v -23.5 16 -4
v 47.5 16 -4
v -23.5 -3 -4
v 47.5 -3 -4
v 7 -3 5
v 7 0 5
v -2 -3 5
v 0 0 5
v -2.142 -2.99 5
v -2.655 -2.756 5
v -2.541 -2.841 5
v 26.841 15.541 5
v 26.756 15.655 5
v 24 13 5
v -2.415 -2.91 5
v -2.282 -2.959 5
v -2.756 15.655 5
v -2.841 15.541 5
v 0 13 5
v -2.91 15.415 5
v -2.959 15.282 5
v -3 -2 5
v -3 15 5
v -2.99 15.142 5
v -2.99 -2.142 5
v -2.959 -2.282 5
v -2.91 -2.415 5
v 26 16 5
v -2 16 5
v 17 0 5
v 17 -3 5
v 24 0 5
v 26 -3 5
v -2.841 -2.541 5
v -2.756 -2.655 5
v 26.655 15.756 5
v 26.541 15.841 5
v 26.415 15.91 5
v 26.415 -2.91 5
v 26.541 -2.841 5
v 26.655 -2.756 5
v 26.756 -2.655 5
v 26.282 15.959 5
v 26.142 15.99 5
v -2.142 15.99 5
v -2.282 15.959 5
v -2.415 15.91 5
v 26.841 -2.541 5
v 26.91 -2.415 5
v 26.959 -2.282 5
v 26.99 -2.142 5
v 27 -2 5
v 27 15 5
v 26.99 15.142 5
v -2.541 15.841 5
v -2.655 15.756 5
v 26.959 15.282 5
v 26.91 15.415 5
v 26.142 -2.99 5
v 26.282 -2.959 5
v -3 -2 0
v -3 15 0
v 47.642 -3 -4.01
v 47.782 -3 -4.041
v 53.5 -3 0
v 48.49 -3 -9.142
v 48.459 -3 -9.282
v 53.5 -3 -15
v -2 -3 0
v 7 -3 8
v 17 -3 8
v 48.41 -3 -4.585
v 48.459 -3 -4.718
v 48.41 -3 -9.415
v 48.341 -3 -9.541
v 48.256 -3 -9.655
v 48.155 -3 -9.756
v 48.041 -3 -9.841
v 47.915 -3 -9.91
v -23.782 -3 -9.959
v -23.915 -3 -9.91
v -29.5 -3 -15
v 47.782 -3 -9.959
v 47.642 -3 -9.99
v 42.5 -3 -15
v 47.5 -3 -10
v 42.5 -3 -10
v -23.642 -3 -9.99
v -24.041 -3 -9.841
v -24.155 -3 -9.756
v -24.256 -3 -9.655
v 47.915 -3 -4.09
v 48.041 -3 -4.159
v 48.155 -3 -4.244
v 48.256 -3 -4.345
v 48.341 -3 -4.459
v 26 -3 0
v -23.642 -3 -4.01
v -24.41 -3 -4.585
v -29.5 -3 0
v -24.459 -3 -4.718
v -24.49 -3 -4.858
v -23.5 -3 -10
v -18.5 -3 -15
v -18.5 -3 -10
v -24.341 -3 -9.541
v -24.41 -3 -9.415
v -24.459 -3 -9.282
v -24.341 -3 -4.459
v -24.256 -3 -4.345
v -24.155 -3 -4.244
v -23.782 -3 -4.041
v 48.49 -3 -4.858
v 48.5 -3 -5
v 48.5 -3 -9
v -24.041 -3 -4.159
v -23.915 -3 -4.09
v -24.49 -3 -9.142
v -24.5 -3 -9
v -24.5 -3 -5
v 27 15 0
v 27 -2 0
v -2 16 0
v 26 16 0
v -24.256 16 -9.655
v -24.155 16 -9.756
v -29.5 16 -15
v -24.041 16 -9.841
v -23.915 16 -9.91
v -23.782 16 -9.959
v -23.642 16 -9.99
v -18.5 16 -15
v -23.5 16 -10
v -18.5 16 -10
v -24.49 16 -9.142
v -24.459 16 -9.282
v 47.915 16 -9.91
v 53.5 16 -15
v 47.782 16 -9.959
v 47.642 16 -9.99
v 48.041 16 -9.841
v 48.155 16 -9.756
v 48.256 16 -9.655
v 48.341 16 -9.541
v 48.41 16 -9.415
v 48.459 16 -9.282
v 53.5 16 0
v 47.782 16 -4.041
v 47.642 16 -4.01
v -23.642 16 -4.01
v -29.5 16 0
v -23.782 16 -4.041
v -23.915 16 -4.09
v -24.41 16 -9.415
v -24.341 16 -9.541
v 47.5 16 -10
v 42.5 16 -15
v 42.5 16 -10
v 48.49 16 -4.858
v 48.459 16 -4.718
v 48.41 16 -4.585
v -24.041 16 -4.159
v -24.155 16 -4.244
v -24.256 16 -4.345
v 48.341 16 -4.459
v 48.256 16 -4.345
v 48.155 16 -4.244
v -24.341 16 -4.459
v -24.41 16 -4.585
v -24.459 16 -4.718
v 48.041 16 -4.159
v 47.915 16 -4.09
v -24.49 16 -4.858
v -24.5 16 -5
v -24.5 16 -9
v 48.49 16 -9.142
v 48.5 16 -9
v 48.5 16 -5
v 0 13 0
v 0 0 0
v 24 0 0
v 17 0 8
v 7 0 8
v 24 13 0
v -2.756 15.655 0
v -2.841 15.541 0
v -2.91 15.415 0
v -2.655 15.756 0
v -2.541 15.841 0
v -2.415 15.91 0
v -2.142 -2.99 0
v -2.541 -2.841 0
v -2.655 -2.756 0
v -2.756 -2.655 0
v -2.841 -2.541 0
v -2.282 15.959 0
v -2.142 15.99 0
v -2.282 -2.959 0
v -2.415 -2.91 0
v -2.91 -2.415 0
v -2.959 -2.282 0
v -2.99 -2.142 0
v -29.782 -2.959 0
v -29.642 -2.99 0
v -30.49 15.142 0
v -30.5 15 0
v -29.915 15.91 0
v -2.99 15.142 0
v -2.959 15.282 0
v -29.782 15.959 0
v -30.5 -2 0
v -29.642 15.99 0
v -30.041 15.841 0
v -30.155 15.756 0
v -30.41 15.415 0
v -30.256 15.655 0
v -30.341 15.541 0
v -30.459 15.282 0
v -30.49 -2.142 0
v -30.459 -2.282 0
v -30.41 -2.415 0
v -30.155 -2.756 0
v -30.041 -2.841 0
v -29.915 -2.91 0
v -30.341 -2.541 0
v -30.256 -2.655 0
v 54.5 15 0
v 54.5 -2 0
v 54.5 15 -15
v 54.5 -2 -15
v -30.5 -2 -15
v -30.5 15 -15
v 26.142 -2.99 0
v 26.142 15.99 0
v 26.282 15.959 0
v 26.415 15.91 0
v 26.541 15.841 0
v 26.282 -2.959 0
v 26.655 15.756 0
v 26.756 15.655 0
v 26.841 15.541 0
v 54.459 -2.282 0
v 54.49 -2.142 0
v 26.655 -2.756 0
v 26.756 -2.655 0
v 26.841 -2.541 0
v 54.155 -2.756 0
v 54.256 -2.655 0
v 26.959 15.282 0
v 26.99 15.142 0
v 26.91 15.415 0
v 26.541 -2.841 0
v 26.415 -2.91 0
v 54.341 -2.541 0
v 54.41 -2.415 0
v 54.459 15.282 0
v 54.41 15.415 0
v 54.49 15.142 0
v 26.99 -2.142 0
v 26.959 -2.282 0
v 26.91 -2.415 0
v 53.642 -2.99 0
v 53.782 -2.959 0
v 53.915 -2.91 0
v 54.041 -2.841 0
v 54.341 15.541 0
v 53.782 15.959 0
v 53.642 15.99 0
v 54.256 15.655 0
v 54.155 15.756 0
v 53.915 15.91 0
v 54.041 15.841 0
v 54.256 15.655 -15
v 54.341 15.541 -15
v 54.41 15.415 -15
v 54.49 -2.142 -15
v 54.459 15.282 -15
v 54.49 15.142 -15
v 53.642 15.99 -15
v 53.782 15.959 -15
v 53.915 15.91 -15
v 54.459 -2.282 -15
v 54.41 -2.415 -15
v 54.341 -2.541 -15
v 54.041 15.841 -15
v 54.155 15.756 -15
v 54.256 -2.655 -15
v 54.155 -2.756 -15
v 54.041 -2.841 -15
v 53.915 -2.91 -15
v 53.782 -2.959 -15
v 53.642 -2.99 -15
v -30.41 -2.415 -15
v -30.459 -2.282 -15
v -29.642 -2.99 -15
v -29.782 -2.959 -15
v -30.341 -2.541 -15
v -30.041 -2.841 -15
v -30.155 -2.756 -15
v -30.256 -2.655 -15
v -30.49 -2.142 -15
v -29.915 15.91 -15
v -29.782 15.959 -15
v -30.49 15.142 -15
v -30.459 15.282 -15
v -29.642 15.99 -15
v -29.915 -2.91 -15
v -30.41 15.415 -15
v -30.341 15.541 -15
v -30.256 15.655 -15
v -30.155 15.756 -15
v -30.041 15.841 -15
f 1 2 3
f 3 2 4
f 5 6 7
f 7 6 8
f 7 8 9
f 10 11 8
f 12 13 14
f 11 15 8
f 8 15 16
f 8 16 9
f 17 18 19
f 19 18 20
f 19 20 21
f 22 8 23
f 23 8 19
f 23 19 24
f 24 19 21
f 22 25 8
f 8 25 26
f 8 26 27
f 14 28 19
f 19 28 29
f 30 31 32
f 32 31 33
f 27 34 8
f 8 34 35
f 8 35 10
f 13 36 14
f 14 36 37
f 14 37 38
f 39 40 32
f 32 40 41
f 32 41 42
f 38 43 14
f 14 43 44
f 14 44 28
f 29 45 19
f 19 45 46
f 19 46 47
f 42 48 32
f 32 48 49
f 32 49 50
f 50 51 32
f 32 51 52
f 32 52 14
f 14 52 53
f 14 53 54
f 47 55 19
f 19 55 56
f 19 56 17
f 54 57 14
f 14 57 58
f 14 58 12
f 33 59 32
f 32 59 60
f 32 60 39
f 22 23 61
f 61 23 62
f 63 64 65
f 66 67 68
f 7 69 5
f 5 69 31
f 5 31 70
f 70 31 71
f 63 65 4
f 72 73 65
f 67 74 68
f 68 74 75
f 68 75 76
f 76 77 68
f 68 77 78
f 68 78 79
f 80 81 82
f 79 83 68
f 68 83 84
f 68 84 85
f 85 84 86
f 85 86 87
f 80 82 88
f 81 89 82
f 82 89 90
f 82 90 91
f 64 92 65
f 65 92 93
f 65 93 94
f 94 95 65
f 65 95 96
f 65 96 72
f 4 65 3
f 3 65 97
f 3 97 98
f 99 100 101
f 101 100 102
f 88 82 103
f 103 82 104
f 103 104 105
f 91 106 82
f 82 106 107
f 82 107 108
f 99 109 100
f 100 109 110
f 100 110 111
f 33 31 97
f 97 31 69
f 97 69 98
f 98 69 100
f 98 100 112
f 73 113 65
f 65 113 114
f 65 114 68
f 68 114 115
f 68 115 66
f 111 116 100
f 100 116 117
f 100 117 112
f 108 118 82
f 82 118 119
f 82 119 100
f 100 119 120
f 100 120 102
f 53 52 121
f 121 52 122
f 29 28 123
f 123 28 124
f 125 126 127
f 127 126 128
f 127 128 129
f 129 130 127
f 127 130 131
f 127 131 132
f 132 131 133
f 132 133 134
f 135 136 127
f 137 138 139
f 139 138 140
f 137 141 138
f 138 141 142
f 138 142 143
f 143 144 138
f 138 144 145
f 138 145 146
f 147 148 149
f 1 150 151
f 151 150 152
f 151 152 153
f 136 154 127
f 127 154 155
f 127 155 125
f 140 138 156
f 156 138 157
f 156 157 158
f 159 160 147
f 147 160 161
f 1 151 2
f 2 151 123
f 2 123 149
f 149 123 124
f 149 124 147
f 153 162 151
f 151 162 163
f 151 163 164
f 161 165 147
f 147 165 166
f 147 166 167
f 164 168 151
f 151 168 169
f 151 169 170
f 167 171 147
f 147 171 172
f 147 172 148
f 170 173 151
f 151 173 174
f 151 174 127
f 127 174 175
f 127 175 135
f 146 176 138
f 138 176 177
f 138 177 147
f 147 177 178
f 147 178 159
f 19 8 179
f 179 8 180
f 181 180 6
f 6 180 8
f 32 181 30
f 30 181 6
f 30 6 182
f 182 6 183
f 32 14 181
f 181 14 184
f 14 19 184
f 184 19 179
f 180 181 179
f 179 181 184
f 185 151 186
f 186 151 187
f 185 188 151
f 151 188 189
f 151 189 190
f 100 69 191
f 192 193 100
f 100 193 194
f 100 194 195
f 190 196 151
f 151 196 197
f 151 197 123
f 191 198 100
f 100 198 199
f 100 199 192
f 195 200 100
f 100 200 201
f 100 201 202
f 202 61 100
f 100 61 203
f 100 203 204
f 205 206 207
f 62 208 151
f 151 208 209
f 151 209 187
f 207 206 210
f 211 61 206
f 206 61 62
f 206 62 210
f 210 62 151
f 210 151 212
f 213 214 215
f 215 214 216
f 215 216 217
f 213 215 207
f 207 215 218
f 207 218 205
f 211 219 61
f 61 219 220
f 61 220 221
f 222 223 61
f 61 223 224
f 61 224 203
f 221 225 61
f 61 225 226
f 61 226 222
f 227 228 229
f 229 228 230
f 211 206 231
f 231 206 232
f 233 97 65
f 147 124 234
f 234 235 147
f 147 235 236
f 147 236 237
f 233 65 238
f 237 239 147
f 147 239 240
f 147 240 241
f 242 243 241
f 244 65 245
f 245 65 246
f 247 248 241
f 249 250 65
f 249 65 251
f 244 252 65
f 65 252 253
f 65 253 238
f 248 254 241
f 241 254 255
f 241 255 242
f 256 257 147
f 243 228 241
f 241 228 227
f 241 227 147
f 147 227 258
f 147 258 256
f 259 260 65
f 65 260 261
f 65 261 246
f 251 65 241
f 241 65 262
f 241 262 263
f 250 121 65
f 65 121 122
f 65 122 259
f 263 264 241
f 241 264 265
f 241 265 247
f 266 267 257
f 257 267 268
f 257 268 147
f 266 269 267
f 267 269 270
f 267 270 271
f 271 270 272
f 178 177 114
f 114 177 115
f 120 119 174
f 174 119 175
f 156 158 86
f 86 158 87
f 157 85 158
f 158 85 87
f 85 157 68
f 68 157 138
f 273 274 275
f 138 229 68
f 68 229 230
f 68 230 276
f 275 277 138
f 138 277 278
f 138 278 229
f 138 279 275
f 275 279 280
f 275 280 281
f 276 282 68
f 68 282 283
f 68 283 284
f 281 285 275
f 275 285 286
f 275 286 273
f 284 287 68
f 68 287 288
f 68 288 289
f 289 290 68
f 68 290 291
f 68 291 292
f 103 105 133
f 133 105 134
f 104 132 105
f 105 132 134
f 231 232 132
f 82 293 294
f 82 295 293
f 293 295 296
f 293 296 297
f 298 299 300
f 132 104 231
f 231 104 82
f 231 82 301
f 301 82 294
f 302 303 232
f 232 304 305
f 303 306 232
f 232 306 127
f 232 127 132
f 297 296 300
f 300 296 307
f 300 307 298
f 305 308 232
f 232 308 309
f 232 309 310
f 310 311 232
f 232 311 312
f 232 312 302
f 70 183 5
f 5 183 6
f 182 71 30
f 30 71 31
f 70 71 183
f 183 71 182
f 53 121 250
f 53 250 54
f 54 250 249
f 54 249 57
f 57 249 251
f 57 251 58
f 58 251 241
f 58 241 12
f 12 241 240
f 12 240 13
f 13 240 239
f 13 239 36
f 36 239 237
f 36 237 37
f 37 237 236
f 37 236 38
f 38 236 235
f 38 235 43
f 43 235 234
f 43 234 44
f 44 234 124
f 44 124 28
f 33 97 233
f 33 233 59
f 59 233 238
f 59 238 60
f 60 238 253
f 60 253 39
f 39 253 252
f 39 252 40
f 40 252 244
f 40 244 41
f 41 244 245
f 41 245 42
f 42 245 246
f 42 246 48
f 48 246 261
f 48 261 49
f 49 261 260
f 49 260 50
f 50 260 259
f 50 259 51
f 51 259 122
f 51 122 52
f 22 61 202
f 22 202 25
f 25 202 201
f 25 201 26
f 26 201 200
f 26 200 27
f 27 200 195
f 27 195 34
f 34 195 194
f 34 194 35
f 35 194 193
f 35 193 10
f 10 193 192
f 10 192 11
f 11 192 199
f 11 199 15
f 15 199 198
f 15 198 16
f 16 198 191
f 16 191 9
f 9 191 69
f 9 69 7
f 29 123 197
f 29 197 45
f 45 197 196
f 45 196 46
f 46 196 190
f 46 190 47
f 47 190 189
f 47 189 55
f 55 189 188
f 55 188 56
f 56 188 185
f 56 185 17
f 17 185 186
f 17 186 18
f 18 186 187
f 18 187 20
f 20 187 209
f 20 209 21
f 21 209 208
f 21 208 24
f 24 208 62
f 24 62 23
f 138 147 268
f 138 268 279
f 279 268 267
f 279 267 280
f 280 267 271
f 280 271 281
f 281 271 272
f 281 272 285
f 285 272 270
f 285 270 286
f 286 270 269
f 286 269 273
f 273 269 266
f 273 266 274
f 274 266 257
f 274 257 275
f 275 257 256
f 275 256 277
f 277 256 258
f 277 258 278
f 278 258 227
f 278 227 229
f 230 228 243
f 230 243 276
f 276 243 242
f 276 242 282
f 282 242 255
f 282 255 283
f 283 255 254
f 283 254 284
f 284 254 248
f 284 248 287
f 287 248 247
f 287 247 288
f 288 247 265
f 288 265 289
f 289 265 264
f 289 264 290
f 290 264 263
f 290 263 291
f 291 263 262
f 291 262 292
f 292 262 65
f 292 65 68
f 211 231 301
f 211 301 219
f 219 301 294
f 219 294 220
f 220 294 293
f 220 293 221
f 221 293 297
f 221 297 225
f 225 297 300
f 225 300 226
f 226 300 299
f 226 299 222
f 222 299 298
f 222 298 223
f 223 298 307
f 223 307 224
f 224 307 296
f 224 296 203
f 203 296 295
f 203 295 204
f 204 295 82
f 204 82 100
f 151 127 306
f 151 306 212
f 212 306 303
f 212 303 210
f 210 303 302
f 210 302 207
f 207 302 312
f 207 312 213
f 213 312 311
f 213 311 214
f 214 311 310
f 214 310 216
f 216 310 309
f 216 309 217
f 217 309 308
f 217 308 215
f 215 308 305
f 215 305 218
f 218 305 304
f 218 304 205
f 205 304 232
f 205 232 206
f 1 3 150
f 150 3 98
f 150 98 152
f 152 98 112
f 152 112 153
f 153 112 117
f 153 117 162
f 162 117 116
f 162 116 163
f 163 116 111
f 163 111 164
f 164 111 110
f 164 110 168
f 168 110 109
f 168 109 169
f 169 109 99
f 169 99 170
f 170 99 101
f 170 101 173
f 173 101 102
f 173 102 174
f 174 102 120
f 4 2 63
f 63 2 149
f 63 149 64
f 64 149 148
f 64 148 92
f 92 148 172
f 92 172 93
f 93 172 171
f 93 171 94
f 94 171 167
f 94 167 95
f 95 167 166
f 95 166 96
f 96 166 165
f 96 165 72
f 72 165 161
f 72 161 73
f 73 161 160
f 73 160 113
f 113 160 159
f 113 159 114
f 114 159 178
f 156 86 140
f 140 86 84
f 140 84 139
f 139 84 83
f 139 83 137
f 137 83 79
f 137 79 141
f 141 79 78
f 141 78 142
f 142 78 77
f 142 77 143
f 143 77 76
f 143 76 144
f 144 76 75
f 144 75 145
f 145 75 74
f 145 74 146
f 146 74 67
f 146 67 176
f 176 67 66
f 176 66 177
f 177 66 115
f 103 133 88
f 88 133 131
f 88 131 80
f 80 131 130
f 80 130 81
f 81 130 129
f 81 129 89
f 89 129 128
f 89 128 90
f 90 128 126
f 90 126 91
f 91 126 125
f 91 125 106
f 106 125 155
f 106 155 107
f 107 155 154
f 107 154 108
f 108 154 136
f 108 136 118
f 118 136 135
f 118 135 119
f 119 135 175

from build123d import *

# Parameters (mm, degrees)
SKETCH1_W           = 30
SKETCH1_H           = 19
SKETCH1_W_2         = 24
SKETCH1_H_2         = 13
BOSS_EXTRUDE1_DEPTH = 5
BOSS_EXTRUDE4_DEPTH = 4
SKETCH4_W           = 6
SKETCH4_H           = 19
BOSS_EXTRUDE5_DEPTH = 6
LPATTERN1_COUNT     = 2
LPATTERN1_PITCH     = 79
SKETCH6_W           = 12
SKETCH6_H           = 19
BOSS_EXTRUDE6_DEPTH = 5
LPATTERN2_COUNT     = 2
LPATTERN2_PITCH     = 73
BOSS_EXTRUDE7_DEPTH = 3
FILLET1_R           = 1
FILLET2_R           = 1
FILLET3_R           = 1


with BuildPart() as part:
    # Sketch1 → Boss-Extrude1 (new body)
    with BuildSketch(Plane.XY):
        with Locations((12, 6.5)):
            Rectangle(SKETCH1_W, SKETCH1_H)
        with Locations((12, 6.5)):
            Rectangle(SKETCH1_W_2, SKETCH1_H_2, mode=Mode.SUBTRACT)
    extrude(amount=BOSS_EXTRUDE1_DEPTH)

    # Sketch3 → Boss-Extrude4 (add)
    with BuildSketch(Plane(origin=(0, 0, 0), x_dir=(-1, 0, 0), z_dir=(0, 0, -1))):
        Polygon((-12, 16), (-54.5, 16), (-54.5, -3), (-7, -3), (30.5, -3), (30.5, 16), align=None)
    extrude(amount=BOSS_EXTRUDE4_DEPTH)

    # Sketch4 → Boss-Extrude5 (add)
    with BuildSketch(Plane(origin=(0, 0, -4), x_dir=(-1, 0, 0), z_dir=(0, 0, -1))):
        with Locations((-51.5, 6.5)):
            Rectangle(SKETCH4_W, SKETCH4_H)
    boss_extrude5 = extrude(amount=BOSS_EXTRUDE5_DEPTH)

    # LPattern1: Boss-Extrude5 ×2
    with Locations(*[(-i * LPATTERN1_PITCH, 0, 0) for i in range(1, LPATTERN1_COUNT)]):
        add(boss_extrude5)

    # Sketch6 → Boss-Extrude6 (add)
    with BuildSketch(Plane(origin=(0, 0, -10), x_dir=(-1, 0, 0), z_dir=(0, 0, -1))):
        with Locations((-48.5, 6.5)):
            Rectangle(SKETCH6_W, SKETCH6_H)
    boss_extrude6 = extrude(amount=BOSS_EXTRUDE6_DEPTH)

    # LPattern2: Boss-Extrude6 ×2
    with Locations(*[(-i * LPATTERN2_PITCH, 0, 0) for i in range(1, LPATTERN2_COUNT)]):
        add(boss_extrude6)

    # Sketch7 → Boss-Extrude7 (add)
    with BuildSketch(Plane.XY.offset(5)):
        Polygon((12, 0), (7, 0), (7, -3), (12, -3), (17, -3), (17, 0), align=None)
    extrude(amount=BOSS_EXTRUDE7_DEPTH)

    # Fillet1
    fillet1_edges = [part.edges().sort_by_distance(p)[0] for p in [
        (-3, 16, 2.5),
        (27, 16, 2.5),
        (27, -3, 2.5),
        (-3, -3, 2.5),
    ]]
    fillet(fillet1_edges, radius=FILLET1_R)

    # Fillet2
    fillet2_edges = [part.edges().sort_by_distance(p)[0] for p in [
        (54.5, 16, -7.5),
        (54.5, -3, -7.5),
        (-30.5, -3, -7.5),
        (-30.5, 16, -7.5),
    ]]
    fillet(fillet2_edges, radius=FILLET2_R)

    # Fillet3
    fillet3_edges = [part.edges().sort_by_distance(p)[0] for p in [
        (48.5, 6.5, -4),
        (48.5, 6.5, -10),
        (-24.5, 6.5, -4),
        (-24.5, 6.5, -10),
    ]]
    fillet(fillet3_edges, radius=FILLET3_R)


solid = part.part
